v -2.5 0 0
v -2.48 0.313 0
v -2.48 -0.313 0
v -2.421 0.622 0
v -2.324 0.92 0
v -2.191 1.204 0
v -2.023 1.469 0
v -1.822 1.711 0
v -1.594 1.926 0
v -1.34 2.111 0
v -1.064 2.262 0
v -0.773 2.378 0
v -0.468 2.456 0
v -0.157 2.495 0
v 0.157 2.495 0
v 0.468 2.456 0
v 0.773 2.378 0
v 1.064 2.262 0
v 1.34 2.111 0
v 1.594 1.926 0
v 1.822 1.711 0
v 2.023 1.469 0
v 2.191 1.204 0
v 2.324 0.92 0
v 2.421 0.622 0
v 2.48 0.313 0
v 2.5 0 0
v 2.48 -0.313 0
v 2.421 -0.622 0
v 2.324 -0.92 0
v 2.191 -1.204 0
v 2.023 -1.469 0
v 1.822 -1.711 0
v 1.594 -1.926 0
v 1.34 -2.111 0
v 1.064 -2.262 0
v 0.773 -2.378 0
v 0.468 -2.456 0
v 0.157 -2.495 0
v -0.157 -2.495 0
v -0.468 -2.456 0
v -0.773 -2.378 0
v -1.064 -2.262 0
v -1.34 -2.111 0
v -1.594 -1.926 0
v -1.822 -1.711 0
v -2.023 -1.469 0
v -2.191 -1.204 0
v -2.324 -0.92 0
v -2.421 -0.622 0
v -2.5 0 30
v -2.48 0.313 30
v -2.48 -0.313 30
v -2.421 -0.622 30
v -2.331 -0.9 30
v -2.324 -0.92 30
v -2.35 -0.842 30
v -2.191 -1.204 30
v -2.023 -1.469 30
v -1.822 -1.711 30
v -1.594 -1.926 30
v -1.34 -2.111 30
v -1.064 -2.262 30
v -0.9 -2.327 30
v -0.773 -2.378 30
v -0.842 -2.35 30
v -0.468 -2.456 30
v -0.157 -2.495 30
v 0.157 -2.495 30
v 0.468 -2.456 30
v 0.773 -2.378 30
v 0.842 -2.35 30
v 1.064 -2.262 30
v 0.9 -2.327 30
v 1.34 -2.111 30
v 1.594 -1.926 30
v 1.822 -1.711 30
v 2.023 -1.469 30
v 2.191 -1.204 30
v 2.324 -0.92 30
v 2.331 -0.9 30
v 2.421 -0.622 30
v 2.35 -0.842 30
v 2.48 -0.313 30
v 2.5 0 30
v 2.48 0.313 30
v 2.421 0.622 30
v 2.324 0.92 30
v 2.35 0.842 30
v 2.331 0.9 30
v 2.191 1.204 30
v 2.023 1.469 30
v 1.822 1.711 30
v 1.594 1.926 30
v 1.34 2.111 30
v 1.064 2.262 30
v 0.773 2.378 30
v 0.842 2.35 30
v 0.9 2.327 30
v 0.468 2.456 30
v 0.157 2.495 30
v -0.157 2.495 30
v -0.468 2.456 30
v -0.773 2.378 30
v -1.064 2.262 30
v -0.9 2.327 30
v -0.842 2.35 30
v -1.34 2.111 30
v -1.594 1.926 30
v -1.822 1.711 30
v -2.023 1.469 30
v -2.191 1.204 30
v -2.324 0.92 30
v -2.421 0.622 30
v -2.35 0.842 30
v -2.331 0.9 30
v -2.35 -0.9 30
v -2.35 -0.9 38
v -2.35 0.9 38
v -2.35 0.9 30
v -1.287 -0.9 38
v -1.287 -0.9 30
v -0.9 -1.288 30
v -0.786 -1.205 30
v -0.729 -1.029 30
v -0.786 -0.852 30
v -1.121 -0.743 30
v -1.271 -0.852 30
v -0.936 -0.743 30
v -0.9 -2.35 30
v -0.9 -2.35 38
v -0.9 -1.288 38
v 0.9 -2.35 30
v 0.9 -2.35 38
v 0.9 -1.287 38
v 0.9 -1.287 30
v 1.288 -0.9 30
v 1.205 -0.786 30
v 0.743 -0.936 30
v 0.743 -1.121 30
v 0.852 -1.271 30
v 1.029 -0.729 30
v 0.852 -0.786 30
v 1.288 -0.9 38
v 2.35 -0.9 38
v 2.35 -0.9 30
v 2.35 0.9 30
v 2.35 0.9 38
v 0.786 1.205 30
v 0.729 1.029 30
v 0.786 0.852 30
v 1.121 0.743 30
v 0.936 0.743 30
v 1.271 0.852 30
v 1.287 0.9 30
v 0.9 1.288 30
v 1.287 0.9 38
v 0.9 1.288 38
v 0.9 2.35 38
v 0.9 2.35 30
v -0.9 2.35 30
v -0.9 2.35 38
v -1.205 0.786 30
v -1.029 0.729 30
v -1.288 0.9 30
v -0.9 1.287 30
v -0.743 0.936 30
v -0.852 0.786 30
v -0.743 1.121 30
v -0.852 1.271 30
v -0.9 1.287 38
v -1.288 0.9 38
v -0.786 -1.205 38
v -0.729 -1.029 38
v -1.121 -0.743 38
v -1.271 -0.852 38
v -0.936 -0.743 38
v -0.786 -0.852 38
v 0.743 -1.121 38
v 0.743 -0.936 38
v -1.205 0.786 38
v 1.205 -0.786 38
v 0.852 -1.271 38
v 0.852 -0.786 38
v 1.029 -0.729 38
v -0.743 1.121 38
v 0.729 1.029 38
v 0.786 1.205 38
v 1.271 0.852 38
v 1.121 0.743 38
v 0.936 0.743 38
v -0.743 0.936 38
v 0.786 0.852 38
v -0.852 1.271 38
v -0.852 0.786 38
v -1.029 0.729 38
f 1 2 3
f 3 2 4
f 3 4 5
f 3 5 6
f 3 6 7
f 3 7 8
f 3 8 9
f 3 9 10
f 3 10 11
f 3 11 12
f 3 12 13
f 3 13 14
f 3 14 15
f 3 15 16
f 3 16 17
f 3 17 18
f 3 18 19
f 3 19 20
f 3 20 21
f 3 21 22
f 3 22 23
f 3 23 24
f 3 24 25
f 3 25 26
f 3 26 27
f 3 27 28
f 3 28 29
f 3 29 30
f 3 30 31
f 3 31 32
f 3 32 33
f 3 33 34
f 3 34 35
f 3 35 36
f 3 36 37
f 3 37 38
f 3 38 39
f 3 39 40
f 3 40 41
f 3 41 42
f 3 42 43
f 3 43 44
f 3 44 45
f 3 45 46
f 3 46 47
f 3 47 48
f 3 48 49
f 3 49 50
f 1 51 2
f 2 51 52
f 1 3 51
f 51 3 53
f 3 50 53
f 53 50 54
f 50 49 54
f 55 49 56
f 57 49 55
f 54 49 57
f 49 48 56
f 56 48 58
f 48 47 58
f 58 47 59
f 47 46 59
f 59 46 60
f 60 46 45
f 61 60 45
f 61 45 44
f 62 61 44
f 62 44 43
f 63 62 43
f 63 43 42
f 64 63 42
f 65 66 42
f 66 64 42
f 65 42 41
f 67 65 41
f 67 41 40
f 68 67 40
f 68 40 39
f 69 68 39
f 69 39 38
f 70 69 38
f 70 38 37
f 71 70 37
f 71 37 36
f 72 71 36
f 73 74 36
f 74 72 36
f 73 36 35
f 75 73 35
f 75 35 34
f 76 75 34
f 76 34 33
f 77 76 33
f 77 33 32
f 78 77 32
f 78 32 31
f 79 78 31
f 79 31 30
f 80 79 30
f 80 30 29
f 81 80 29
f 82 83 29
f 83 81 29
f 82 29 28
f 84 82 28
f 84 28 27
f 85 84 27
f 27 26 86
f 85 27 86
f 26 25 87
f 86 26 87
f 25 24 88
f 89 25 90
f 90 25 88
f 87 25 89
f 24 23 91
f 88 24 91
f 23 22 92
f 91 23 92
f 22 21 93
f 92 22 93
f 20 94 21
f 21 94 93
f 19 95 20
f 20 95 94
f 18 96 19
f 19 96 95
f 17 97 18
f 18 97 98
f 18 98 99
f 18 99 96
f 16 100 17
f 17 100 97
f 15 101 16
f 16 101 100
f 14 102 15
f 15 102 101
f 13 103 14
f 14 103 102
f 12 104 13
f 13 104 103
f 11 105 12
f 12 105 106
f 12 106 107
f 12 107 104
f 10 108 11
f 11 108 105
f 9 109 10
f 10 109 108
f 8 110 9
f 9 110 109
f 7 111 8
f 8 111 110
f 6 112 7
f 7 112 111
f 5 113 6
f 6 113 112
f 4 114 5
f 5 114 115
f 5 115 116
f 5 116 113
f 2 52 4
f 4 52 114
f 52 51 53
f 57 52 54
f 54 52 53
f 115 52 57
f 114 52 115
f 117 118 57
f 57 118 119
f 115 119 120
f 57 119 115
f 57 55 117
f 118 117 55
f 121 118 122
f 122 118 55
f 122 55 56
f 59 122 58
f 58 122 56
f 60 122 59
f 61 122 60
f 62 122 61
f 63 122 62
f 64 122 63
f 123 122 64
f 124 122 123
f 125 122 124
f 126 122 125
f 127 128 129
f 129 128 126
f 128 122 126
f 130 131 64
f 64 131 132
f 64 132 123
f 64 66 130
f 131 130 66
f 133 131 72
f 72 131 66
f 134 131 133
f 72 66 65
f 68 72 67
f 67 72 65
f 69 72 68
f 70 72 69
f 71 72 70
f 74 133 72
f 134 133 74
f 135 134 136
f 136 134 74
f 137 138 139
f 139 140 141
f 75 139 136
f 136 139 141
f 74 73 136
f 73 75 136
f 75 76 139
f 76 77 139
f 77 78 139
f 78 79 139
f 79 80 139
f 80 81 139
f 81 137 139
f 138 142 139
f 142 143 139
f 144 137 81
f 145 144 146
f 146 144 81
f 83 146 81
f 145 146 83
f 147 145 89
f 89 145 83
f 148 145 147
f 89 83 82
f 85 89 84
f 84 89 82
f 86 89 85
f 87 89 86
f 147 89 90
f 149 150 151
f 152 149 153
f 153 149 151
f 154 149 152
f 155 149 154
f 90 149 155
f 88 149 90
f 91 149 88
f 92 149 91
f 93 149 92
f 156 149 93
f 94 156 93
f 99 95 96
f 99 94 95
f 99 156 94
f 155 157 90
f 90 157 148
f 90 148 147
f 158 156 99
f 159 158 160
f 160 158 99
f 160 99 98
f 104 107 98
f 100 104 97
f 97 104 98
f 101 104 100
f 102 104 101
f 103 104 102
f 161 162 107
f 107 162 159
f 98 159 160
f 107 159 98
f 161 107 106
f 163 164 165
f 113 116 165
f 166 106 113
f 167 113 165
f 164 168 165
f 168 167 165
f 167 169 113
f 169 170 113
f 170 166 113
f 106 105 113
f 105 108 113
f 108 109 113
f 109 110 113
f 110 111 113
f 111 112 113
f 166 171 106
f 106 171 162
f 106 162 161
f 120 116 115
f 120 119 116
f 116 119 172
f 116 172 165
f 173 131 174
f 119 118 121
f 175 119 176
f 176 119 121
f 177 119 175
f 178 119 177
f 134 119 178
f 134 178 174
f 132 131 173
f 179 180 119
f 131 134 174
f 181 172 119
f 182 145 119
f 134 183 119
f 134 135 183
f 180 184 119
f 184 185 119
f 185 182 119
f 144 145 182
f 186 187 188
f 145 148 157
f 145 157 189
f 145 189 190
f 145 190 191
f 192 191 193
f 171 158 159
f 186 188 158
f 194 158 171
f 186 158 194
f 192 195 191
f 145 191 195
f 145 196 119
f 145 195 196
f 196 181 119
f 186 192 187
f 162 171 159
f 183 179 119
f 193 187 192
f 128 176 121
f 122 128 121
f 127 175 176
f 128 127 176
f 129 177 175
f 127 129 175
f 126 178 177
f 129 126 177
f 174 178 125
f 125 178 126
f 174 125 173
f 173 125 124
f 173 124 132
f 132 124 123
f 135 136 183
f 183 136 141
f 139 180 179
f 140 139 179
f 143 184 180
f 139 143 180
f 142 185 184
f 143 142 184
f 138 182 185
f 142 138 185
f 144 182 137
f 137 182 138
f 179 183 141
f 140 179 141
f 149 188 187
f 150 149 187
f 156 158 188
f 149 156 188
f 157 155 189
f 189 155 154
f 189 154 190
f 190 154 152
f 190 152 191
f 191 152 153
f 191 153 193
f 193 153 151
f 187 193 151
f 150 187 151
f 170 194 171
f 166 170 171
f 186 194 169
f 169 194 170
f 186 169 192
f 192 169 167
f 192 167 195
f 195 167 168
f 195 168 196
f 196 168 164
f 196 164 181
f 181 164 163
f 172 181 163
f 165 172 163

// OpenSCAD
// Axle/Hub for Lego wheel.
// Connects M3 motor shaft on Tajima motor/gearbox kit to Lego splined axle wheel.
//
// Printed at 0.2mm layers on UP!. Build 45degree overhangs with no support
//
// Motor shaft hole can be HEX, ROUND, or ROUND with FLAT

// Using metal hex threaded standoff for M3 connection
// standoff is M3x10mm x5mm across flats JAYCAR HP0900
// standoff is press fit into hex hole. Hole has domed ceiling so prints without support
//
// Lego axle design has keyholing to get cleaner inner corners than a simple cross, on the UP
// Has provision for two Flanges that can directly engage the inner surfaces of the wheel rim to provide support
// as the printed axle is prone to shearing under load.
// It is intended that the flange/s are interference fit into the hub parts, 
// and that the wheel is forced all the way down the axle to the flange so the axle is not cantilevered
// Intended for insertion from the deep side of the wheel hub

//-------- Dimension Constants ------------
//R???? = radius, L???? = length; Note small numbers added to dimensions are used to trim for exact fit with your printer (eg +0.1)

	LSpline=8; //Spline is the Lego Axle part

	//AQUA  Flange1 closest to spline
	RFlange=0;//(8 +0.1)/2; //Flange1 is adjacent to the axle spline
	LFlange=0;//4.3;
	
	//TEAL Flange 2 is optional where it needs a large ring spaced off the axle by Flange1

//Type2 Hub - Red/Orange Balloon tyres, double flange; Also works for Black wheels 
	RFlange2=0;//(16+0.1)/2;
	LFlange2=0;

// Type1 Hub - Black, flat tyres, only 1 small flange
	//RFlange2=RFlange;
	//LFlange2=0.01;

	HoleOS=0.6/2; // Oversize holes to get to correct size. (UP usually makes holes small)
	HoleIsHex=false;
	HoleFlat=0; //For round motor hole with flat on one side. Depth of flat from outside	
     LHole=0        ;  //Hex threaded insert dimensions
     RHole=0;//5/2 + HoleOS; //For hex holes is distance across flats (apothem)

	//MAGENTA  Shaft is part holding hex from motor end
	RShaft =10/4;  
     LShaft=LHole+ 30;

	RHex=Apothem2Radius(RHole,5) ; //dimension across diagonals	


//-----
function Apothem2Radius(apothem,n) = apothem / cos(180/n);

//use <MCAD/lego_compatibility.scad> //axle shape and dimensions not usable.
use <MCAD/regular_shapes.scad>

//-------------------- Lego Axle ----------------------
axle_spline_width=2.0 - 0.2;
axle_diameter=4.8 - 0.1;
axle_inner_keyhole_radius=0.3; //keyhole the corners to try and make them square when printed

module axle(height) {
	translate([0,0,height/2]) 
		difference() {
			union() {
				cube([axle_diameter,axle_spline_width,height],center=true);
				cube([axle_spline_width,axle_diameter,height],center=true);
			}//union
			for (A=[0,90,180,270]) {
				rotate([0,0,A]) {
					translate([axle_spline_width/1.75,axle_spline_width/1.75,0])
					cylinder(h=height+0.01,r=axle_inner_keyhole_radius,center=true, $fs=0.2);
				}//rot
			}//for
		}//translate diff
}//module
//----------------------------- Main ---------------------------------
difference() {
	union() { //the solid bits
//color('red") cylinder(r1=RHole*1.25,r2=RHole,h=RHole*0.2);  //entry countersink
		color("magenta") cylinder(h = LShaft, r=RShaft, $fn=50);
		translate([0,0,LShaft]) {
			color("teal") cylinder(h=LFlange2+0.01, r=RFlange2, $fn=50); //Flange2 itself
			if (RFlange2>RShaft)   //make 45 degree cone so no support material is needed
				translate([0,0,-(RFlange2-RShaft)]) 
					color("teal")  cylinder(h=RFlange2-RShaft, r1=RShaft,r2=RFlange2, $fs=1); //
			translate([0,0,LFlange2]) {
				color("aqua") cylinder(h=LFlange+0.01, r=RFlange, $fs=1);
				translate([0,0,LFlange])
					axle(height=LSpline);
			}
		}
	}//union

	union() { //the holes
		translate([0,0,-0.01]) {
			cylinder(r1=RHole*1.2,r2=RHole*0.8,h=RHole*0.4,center=false);  //entry countersink
			if (HoleIsHex) {
				hexagon_prism(height=LHole,radius=RHex); //hole for hex spacer
			}else{
				intersection() { //to put a flat on side of round shafts
					cylinder(r=RHole,h=LHole,$fn=20);
					translate([-RHole, -RHole - HoleFlat, 0]) cube([2*RHole, 2*RHole,LHole]);
				}//intersect
			}//if
	                        translate([0,0,LHole-0.01])
	                        	cylinder(h=RHole, r1=RHole,r2=0.5    ); //put a cone on top of hole so no support needed
		}
	}//union
} //diff
